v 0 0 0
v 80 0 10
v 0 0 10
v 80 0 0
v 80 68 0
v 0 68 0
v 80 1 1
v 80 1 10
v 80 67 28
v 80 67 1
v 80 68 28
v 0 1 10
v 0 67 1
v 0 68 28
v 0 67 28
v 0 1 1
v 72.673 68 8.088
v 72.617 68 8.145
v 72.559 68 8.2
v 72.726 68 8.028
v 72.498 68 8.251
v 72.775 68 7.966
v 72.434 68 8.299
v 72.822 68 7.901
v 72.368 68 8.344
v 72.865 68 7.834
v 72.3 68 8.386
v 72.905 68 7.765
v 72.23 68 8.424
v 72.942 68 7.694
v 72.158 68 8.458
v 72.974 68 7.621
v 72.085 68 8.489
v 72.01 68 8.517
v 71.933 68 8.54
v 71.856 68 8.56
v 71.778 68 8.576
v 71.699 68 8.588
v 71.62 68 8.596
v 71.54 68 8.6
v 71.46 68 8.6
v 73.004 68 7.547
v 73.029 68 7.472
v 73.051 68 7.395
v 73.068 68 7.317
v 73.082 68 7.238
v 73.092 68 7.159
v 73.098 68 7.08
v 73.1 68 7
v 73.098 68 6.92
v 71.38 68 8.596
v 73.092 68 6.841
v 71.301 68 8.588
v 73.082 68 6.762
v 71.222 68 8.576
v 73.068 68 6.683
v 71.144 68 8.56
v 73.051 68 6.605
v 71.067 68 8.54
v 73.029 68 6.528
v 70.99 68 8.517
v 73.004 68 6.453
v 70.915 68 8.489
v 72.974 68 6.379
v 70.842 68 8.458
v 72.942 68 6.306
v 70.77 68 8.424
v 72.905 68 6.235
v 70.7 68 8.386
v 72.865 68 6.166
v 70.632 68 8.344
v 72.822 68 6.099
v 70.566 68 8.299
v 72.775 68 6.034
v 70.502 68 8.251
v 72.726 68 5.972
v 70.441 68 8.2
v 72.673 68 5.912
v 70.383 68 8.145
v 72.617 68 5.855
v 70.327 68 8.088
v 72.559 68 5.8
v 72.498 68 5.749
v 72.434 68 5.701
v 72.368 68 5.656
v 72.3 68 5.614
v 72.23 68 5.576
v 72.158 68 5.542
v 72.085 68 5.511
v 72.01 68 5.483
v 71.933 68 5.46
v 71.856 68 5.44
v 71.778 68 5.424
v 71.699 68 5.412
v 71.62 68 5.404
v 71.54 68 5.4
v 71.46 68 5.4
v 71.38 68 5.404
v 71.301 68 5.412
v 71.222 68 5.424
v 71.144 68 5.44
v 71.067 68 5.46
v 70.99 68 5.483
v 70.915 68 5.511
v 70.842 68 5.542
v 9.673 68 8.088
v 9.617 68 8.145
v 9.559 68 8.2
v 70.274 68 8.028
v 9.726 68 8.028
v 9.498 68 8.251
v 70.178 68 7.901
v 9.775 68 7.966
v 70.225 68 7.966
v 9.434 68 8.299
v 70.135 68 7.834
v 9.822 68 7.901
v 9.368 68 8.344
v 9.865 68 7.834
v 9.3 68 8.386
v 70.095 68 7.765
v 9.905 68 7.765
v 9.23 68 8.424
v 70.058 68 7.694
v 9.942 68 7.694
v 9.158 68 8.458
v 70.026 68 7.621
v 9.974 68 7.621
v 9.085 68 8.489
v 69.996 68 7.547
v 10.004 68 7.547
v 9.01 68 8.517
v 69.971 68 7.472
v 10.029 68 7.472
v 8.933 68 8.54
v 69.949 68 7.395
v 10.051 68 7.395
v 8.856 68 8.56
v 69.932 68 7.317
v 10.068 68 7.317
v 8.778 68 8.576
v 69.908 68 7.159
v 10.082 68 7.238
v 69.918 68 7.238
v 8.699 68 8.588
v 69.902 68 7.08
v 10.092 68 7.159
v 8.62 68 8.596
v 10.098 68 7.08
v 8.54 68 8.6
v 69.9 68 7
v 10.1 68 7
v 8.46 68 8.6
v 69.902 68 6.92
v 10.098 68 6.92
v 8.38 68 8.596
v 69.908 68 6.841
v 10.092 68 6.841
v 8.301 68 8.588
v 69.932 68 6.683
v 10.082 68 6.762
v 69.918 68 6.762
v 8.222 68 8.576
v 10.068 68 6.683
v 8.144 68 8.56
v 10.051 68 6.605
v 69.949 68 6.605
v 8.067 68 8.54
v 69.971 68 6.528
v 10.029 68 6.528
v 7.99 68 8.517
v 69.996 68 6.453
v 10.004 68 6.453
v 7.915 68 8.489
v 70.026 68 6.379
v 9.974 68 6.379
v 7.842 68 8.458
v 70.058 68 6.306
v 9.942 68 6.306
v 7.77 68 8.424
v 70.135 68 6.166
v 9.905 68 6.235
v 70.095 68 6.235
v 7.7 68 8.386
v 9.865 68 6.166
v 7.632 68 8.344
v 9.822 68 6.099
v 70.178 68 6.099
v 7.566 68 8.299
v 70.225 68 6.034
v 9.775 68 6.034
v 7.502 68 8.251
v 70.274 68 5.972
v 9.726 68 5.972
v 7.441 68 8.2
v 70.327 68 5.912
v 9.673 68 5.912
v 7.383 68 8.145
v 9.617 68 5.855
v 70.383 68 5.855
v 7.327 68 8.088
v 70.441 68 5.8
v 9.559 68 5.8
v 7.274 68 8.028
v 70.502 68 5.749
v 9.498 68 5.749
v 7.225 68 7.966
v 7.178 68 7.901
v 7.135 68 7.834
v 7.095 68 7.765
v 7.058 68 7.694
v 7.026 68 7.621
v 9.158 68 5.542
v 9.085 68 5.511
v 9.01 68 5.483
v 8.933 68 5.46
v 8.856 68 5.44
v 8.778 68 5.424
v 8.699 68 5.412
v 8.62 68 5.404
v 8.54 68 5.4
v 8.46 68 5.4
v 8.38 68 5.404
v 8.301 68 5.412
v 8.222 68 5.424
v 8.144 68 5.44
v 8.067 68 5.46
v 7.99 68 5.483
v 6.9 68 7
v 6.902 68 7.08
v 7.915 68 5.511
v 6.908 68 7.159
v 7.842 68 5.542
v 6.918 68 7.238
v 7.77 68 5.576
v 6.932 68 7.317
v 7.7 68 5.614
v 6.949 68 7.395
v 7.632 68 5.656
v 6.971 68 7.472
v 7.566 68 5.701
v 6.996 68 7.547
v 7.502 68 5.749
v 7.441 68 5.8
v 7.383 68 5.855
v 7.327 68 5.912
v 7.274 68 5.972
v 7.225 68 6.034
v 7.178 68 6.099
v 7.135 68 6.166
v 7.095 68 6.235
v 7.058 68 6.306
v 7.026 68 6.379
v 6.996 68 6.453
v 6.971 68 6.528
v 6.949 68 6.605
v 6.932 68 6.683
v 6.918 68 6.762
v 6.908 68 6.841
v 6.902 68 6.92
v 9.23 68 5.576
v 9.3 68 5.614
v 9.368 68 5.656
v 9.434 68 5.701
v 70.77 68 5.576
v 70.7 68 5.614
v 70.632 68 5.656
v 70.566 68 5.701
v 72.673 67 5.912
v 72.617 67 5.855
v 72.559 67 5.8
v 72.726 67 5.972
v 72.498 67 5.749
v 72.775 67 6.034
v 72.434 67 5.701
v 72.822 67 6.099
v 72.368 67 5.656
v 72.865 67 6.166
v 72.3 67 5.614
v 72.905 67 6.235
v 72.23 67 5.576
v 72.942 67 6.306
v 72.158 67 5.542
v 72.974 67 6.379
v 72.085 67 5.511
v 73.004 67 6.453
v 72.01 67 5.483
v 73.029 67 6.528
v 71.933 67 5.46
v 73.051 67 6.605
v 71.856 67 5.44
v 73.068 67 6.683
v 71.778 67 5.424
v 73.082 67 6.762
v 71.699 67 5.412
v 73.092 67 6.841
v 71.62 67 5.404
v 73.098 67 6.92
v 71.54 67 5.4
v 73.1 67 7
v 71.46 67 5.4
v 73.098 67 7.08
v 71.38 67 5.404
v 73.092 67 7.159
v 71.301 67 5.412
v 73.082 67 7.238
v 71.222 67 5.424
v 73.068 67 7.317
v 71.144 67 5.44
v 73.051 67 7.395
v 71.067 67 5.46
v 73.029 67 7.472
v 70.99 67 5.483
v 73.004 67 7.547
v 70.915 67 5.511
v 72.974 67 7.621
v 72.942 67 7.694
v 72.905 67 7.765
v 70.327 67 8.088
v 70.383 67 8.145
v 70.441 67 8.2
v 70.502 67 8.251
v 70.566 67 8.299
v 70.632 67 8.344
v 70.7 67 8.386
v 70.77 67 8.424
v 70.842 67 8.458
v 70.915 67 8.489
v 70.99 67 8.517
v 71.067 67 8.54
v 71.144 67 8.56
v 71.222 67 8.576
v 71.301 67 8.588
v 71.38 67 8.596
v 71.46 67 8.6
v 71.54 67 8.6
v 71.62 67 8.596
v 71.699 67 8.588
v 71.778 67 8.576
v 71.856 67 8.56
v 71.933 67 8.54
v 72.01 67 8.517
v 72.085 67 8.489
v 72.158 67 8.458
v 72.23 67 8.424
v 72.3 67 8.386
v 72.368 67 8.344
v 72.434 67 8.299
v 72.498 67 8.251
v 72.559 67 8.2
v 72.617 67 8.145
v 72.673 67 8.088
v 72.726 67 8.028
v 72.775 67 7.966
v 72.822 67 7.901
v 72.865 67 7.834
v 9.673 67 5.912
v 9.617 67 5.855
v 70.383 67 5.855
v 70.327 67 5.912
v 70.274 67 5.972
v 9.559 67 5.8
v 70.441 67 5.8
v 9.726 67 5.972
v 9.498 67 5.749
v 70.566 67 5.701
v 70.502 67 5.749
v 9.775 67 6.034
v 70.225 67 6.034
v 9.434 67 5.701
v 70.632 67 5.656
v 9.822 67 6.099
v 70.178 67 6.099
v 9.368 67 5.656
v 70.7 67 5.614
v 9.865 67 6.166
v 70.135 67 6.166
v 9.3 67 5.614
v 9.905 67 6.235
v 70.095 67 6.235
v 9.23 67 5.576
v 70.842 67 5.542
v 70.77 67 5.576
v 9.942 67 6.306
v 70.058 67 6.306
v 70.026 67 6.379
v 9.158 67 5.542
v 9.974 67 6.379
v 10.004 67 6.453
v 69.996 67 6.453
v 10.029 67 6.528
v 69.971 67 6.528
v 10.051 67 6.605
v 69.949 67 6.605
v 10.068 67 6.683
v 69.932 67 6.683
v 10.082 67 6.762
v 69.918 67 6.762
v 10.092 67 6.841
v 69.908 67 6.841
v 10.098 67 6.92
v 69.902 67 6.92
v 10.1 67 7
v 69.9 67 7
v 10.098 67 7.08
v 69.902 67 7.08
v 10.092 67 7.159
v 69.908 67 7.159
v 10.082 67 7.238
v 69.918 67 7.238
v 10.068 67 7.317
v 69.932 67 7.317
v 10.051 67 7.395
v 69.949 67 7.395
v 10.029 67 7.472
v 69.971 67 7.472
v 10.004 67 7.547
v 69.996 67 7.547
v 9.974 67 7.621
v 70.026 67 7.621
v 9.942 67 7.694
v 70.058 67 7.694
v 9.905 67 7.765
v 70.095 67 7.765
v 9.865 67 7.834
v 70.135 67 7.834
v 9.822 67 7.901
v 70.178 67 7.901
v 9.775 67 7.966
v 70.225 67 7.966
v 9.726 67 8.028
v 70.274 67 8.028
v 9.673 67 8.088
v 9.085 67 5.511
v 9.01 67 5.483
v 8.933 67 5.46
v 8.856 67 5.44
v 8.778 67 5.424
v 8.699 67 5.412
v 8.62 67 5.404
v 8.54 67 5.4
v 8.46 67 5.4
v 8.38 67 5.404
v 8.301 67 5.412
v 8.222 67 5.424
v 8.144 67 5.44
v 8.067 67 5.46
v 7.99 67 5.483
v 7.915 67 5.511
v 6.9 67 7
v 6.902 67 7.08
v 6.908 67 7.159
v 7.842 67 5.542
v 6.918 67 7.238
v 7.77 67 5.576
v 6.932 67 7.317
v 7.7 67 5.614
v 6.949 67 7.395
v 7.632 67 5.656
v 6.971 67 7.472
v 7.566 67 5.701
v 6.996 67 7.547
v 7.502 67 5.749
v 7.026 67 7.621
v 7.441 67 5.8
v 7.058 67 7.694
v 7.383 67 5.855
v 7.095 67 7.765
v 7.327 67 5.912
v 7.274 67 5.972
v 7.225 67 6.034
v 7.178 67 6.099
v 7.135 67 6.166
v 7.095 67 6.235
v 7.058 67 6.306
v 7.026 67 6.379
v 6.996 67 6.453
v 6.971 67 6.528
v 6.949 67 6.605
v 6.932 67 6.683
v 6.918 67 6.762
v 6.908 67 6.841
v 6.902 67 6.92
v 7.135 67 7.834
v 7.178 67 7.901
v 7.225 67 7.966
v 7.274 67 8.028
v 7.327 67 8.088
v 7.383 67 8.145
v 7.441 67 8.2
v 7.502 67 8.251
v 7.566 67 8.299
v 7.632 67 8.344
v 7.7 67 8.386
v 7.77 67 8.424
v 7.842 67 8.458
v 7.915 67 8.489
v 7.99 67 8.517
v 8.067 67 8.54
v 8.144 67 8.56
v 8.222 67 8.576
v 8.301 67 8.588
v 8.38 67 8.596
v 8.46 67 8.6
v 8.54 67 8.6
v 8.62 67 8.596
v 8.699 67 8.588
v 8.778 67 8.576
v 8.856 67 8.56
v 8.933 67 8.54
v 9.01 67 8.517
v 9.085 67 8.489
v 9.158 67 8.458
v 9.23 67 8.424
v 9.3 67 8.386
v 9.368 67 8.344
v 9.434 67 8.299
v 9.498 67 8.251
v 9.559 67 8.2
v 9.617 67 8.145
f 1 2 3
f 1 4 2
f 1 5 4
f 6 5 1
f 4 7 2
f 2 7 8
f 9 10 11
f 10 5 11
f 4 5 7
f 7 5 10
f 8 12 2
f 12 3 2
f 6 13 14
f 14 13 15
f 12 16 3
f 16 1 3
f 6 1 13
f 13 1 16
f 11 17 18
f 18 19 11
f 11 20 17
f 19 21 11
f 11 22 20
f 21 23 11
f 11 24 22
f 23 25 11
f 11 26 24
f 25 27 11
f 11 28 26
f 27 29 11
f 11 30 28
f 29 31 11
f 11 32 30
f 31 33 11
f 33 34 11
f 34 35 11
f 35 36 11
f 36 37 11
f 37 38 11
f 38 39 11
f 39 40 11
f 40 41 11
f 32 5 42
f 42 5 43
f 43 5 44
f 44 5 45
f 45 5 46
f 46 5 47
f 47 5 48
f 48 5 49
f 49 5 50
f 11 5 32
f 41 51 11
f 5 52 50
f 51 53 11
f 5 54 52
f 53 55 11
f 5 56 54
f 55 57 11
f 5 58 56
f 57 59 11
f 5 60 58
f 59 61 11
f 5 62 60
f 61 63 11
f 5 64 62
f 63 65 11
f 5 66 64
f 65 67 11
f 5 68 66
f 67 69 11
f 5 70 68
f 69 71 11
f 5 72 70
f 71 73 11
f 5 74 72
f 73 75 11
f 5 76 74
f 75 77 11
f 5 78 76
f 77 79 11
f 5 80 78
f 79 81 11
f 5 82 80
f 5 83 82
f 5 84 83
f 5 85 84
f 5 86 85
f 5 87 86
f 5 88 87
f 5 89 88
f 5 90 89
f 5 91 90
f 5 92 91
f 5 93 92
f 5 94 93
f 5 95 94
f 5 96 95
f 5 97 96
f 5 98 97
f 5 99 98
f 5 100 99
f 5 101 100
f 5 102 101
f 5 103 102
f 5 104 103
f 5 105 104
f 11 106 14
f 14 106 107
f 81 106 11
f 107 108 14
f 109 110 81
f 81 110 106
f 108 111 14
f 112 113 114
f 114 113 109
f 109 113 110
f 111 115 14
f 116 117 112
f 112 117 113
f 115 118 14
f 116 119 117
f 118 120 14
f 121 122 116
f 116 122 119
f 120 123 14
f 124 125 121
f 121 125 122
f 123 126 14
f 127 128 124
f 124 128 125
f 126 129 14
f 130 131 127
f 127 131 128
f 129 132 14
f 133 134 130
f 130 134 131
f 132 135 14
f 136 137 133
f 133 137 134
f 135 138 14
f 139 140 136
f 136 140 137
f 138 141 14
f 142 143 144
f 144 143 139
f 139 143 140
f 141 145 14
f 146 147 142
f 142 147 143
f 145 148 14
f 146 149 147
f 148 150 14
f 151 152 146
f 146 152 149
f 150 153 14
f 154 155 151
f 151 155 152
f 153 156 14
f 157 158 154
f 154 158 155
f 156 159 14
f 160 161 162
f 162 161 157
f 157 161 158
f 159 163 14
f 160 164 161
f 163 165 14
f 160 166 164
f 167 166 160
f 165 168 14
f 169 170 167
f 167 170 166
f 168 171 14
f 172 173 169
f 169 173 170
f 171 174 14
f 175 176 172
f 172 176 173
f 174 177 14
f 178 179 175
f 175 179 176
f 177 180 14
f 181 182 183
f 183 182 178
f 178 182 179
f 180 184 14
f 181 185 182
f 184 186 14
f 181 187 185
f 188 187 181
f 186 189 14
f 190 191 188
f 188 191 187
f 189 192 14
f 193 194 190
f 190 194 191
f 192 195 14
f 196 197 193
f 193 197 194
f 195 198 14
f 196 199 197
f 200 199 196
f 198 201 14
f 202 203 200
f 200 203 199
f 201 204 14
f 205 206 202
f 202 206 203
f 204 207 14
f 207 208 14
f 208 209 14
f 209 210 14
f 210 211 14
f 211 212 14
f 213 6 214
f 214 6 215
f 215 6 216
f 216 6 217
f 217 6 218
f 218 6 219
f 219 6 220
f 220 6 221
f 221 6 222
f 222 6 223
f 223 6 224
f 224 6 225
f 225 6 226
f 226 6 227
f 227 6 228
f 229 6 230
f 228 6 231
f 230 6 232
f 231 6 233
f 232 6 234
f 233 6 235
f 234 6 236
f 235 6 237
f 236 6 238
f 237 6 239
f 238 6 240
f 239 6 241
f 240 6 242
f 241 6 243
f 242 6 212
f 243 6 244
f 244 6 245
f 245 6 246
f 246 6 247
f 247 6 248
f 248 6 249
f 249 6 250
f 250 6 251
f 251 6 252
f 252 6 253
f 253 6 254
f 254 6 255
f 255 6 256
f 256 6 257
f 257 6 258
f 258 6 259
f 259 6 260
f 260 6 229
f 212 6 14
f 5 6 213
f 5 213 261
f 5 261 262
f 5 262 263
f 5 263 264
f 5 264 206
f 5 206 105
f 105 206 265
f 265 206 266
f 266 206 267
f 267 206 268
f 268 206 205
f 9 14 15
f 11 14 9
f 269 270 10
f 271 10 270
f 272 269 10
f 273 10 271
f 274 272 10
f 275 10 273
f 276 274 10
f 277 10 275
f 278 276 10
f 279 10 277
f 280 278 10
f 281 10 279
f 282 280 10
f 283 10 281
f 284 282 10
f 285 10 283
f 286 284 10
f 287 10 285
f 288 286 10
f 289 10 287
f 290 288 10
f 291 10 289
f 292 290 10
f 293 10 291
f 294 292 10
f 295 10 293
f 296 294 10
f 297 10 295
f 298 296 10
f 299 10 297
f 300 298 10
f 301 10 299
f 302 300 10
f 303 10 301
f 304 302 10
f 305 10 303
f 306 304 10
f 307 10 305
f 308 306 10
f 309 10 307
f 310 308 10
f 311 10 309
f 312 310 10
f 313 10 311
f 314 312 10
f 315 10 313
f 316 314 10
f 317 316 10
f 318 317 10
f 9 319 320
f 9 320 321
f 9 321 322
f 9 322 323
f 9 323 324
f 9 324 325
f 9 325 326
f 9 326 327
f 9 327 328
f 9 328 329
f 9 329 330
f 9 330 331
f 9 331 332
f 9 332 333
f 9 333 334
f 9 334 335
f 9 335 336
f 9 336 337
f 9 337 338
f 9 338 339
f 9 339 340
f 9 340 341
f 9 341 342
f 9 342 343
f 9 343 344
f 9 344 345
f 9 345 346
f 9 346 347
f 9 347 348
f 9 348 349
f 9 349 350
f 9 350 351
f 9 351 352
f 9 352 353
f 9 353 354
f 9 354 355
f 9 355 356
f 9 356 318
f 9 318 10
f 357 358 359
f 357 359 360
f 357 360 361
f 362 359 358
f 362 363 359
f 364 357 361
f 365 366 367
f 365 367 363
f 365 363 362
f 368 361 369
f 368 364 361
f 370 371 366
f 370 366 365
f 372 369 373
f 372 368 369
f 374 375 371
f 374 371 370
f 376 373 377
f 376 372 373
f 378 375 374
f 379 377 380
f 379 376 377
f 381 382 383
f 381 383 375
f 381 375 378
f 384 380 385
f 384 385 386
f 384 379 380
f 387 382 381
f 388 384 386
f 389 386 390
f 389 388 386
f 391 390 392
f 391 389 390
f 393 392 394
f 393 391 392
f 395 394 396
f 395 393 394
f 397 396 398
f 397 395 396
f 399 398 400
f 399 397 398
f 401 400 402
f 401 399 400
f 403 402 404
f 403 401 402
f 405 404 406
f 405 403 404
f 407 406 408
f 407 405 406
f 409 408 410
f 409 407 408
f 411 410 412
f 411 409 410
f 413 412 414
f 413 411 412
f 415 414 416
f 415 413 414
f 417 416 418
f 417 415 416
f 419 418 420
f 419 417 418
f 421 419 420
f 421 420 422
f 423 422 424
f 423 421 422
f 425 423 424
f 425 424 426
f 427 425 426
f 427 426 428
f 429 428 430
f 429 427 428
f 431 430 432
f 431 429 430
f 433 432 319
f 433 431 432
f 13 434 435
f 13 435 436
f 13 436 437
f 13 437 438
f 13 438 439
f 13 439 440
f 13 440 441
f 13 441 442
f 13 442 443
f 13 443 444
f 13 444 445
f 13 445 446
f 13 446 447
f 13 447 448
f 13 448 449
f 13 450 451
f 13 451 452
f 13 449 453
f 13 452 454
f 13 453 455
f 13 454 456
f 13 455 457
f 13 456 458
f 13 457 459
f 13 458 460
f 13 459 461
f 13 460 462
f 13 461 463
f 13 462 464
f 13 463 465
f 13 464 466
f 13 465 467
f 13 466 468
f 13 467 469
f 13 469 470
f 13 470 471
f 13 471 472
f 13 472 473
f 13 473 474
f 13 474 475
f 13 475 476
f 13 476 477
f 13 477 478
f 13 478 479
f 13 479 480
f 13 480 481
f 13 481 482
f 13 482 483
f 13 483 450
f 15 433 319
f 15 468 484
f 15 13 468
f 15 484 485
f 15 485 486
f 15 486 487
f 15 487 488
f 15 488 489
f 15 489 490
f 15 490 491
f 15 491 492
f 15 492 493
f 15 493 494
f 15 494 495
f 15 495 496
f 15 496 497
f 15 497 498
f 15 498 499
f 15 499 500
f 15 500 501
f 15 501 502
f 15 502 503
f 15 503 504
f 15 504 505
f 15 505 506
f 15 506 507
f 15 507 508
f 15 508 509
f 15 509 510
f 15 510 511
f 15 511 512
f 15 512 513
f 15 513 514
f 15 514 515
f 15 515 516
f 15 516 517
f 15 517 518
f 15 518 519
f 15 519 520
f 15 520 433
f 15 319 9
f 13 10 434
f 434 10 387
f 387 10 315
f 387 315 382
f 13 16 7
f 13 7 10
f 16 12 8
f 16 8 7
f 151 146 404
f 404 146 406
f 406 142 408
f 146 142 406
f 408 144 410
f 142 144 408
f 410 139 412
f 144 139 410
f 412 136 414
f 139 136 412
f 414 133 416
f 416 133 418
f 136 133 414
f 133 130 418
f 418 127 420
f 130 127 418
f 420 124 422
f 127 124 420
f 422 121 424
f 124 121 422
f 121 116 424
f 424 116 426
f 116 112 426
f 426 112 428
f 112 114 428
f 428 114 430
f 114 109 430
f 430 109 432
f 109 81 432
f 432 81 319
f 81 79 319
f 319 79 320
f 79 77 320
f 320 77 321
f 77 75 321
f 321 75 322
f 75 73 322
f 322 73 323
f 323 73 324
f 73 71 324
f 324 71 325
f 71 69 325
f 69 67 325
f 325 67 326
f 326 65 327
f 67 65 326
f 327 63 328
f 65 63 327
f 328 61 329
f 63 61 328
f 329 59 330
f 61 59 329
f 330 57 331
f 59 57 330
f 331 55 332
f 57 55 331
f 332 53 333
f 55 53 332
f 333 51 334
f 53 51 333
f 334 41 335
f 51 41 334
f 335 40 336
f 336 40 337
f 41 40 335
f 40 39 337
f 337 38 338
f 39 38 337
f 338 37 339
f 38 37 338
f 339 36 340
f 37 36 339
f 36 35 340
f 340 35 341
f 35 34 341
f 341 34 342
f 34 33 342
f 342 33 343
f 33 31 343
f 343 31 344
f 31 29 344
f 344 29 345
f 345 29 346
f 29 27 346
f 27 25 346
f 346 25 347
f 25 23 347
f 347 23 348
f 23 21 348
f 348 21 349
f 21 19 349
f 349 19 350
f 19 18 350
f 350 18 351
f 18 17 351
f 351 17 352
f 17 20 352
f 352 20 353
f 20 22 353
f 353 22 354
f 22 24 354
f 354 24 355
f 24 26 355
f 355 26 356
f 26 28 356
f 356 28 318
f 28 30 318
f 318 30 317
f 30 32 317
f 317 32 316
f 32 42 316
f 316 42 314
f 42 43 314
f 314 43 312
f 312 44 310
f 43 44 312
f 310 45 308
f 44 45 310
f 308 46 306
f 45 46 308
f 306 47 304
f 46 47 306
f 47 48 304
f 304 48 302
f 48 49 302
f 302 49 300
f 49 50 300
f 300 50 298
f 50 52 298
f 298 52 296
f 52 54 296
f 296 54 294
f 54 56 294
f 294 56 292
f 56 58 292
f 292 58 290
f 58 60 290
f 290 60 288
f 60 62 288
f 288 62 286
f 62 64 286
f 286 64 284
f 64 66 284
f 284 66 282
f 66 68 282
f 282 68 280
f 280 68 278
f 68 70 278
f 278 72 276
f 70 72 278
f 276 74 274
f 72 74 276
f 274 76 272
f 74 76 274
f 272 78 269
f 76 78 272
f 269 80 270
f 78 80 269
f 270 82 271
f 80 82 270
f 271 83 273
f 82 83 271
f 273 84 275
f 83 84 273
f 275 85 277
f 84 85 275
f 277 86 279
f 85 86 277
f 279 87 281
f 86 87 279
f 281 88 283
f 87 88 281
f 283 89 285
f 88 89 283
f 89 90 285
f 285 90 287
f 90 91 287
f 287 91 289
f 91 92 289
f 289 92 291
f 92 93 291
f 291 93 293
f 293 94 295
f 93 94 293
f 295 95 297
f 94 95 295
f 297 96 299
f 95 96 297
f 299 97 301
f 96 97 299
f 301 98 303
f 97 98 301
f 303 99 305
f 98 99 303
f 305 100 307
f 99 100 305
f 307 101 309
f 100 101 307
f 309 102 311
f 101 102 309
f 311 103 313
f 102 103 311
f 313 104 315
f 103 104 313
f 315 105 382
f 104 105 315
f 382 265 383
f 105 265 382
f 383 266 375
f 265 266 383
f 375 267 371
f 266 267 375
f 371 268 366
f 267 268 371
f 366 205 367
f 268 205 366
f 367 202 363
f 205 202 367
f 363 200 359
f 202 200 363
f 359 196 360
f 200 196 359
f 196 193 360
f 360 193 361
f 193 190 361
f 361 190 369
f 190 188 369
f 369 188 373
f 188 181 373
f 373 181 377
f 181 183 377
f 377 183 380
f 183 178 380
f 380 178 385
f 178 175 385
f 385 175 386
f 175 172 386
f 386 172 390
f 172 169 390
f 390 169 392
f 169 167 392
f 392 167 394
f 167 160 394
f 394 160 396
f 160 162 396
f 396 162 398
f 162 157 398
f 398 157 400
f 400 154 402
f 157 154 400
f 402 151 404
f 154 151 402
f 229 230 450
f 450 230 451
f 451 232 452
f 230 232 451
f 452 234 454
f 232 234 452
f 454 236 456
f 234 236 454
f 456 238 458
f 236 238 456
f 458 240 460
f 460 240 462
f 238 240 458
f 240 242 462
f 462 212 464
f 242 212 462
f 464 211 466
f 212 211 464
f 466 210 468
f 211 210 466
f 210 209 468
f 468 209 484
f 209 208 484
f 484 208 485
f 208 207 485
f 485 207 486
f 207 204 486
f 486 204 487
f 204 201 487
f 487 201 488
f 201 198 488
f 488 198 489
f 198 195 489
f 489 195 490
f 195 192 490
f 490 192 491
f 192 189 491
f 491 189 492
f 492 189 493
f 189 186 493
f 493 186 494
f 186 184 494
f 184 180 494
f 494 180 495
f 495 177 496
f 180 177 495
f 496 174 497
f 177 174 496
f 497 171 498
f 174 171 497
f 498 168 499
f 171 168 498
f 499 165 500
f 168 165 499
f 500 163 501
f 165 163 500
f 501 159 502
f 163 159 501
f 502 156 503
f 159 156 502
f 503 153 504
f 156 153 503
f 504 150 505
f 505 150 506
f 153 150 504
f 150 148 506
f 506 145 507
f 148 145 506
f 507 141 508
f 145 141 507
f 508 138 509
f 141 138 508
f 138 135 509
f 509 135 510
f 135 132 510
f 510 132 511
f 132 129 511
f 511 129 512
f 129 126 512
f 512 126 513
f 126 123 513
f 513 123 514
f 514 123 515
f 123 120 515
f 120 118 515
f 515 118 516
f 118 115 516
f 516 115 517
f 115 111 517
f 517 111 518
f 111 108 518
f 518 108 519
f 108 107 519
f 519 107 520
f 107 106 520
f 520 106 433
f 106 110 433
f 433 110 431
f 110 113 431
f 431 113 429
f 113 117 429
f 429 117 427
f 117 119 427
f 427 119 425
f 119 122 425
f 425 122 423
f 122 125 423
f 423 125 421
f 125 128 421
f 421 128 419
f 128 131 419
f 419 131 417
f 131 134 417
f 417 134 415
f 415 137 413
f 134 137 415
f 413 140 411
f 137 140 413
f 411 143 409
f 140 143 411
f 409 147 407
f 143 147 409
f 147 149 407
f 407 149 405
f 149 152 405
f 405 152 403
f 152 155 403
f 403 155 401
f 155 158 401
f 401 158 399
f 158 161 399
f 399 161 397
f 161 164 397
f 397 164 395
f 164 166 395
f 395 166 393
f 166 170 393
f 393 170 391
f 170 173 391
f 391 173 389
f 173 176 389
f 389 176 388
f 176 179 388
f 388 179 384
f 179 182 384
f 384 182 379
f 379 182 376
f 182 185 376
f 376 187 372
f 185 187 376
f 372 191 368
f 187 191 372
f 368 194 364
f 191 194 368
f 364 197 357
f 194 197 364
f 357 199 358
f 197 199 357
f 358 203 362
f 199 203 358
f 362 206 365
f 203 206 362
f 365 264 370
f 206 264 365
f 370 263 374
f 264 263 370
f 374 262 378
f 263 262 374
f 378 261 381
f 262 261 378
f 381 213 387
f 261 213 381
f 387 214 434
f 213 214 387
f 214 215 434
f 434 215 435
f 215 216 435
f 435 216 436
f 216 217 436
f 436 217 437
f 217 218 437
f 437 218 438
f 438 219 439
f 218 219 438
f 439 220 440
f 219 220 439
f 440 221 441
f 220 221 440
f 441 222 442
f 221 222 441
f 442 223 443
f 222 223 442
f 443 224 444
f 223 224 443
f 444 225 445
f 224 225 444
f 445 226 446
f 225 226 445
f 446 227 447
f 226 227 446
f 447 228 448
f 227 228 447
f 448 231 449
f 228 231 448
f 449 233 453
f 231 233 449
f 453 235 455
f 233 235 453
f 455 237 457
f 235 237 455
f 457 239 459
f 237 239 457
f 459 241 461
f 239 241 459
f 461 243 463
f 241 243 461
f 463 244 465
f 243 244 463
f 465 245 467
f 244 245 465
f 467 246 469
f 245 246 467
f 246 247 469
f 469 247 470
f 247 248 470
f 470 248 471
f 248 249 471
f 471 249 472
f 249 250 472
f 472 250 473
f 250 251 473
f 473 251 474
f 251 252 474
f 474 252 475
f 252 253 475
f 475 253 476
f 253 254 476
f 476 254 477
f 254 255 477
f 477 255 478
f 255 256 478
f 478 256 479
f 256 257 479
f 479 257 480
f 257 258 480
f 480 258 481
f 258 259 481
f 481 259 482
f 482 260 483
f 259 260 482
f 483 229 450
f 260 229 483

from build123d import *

# Parameters (mm, degrees)
SKETCH_W        = 80
SKETCH_H        = 68
PAD_DEPTH       = 28
SKETCH001_W     = 66
SKETCH001_H     = 27
POCKET_DEPTH    = 80
SKETCH002_W     = 1
SKETCH002_H     = 18
POCKET001_DEPTH = 80
SKETCH003_R     = 1.6
POCKET002_DEPTH = 5


with BuildPart() as part:
    # Sketch → Pad (new body)
    with BuildSketch(Plane.XY):
        with Locations((40, 34)):
            Rectangle(SKETCH_W, SKETCH_H)
    extrude(amount=PAD_DEPTH)

    # Sketch001 (on Face4 of Pad) → Pocket (cut)
    with BuildSketch(Plane(origin=(0, 0, 0), x_dir=(0, -1, 0), z_dir=(-1, 0, 0))):
        with Locations((-34, 14.5)):
            Rectangle(SKETCH001_W, SKETCH001_H)
    extrude(amount=-POCKET_DEPTH, mode=Mode.SUBTRACT)

    # Sketch002 (on Face2 of Pocket) → Pocket001 (cut)
    with BuildSketch(Plane(origin=(0, 0, 0), x_dir=(0, -1, 0), z_dir=(-1, 0, 0))):
        with Locations((-0.5, 19)):
            Rectangle(SKETCH002_W, SKETCH002_H)
    extrude(amount=-POCKET001_DEPTH, mode=Mode.SUBTRACT)

    # Sketch003 (on Face6 of Pocket001) → Pocket002 (cut)
    with BuildSketch(Plane(origin=(0, 68, 0), x_dir=(-1, 0, 0), z_dir=(0, 1, 0))):
        with Locations((-71.5, 7)):
            Circle(SKETCH003_R)
        with Locations((-8.5, 7)):
            Circle(SKETCH003_R)
    extrude(amount=-POCKET002_DEPTH, mode=Mode.SUBTRACT)


solid = part.part
